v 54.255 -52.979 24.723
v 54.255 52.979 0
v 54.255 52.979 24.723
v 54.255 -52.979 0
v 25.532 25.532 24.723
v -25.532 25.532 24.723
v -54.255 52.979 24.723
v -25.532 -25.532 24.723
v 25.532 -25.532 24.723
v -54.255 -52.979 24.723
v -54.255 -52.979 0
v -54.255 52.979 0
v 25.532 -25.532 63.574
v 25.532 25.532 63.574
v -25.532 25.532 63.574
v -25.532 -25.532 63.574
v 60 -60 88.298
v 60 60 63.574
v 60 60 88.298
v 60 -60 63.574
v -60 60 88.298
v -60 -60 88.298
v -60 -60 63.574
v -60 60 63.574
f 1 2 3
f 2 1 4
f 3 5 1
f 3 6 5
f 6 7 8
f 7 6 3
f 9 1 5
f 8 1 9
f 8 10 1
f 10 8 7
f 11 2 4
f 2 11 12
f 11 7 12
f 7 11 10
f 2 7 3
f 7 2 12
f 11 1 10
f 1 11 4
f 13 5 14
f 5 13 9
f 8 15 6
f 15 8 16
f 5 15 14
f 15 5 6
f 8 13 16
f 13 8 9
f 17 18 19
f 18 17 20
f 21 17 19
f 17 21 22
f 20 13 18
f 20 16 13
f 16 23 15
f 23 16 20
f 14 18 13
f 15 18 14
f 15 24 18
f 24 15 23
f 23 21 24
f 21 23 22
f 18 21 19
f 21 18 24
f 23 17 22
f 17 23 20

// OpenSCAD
/* doodle-meta {"version":1,"parameters":{"width":{"label":"Overall width","description":"Changes the body width","unit":"mm","feature":"body_width"},"depth":{"label":"Overall depth","description":"Changes the body depth","unit":"mm","feature":"body_depth"},"height":{"label":"Overall height","description":"Changes the body height","unit":"mm","feature":"body_height"}},"features":{"body_width":{"kind":"dimension","axis":"x","label":"Overall width"},"body_depth":{"kind":"dimension","axis":"y","label":"Overall depth"},"body_height":{"kind":"dimension","axis":"z","label":"Overall height"}}} */

width = 127.65957446808511;
depth = 127.65957446808511;
height = 88.29787234042553;

// Section heights derived from front view proportions (sum to height)
h_bottom = height * 0.28;
h_waist = height * 0.44;
h_top = height * 0.28;

// Section widths (X) derived from front view proportions
w_bottom = width * 0.85;
w_waist = width * 0.40;
w_top = width * 0.94;

// Section depths (Y) derived from right view proportions
d_bottom = depth * 0.83;
d_waist = depth * 0.40;
d_top = depth * 0.94;

// Z levels (bottom of each section)
z_bottom = 0;
z_waist = h_bottom;
z_top = h_bottom + h_waist;

// Overlap to ensure manifold connection
eps = 0.1;

module bottom_flange() {
    translate([0, 0, z_bottom + h_bottom/2])
    cube([w_bottom, d_bottom, h_bottom], center=true);
}

module waist() {
    translate([0, 0, z_waist + h_waist/2])
    cube([w_waist, d_waist, h_waist + 2*eps], center=true);
}

module top_flange() {
    translate([0, 0, z_top + h_top/2])
    cube([w_top, d_top, h_top], center=true);
}

module bracket() {
    union() {
        bottom_flange();
        waist();
        top_flange();
    }
}

bracket();
